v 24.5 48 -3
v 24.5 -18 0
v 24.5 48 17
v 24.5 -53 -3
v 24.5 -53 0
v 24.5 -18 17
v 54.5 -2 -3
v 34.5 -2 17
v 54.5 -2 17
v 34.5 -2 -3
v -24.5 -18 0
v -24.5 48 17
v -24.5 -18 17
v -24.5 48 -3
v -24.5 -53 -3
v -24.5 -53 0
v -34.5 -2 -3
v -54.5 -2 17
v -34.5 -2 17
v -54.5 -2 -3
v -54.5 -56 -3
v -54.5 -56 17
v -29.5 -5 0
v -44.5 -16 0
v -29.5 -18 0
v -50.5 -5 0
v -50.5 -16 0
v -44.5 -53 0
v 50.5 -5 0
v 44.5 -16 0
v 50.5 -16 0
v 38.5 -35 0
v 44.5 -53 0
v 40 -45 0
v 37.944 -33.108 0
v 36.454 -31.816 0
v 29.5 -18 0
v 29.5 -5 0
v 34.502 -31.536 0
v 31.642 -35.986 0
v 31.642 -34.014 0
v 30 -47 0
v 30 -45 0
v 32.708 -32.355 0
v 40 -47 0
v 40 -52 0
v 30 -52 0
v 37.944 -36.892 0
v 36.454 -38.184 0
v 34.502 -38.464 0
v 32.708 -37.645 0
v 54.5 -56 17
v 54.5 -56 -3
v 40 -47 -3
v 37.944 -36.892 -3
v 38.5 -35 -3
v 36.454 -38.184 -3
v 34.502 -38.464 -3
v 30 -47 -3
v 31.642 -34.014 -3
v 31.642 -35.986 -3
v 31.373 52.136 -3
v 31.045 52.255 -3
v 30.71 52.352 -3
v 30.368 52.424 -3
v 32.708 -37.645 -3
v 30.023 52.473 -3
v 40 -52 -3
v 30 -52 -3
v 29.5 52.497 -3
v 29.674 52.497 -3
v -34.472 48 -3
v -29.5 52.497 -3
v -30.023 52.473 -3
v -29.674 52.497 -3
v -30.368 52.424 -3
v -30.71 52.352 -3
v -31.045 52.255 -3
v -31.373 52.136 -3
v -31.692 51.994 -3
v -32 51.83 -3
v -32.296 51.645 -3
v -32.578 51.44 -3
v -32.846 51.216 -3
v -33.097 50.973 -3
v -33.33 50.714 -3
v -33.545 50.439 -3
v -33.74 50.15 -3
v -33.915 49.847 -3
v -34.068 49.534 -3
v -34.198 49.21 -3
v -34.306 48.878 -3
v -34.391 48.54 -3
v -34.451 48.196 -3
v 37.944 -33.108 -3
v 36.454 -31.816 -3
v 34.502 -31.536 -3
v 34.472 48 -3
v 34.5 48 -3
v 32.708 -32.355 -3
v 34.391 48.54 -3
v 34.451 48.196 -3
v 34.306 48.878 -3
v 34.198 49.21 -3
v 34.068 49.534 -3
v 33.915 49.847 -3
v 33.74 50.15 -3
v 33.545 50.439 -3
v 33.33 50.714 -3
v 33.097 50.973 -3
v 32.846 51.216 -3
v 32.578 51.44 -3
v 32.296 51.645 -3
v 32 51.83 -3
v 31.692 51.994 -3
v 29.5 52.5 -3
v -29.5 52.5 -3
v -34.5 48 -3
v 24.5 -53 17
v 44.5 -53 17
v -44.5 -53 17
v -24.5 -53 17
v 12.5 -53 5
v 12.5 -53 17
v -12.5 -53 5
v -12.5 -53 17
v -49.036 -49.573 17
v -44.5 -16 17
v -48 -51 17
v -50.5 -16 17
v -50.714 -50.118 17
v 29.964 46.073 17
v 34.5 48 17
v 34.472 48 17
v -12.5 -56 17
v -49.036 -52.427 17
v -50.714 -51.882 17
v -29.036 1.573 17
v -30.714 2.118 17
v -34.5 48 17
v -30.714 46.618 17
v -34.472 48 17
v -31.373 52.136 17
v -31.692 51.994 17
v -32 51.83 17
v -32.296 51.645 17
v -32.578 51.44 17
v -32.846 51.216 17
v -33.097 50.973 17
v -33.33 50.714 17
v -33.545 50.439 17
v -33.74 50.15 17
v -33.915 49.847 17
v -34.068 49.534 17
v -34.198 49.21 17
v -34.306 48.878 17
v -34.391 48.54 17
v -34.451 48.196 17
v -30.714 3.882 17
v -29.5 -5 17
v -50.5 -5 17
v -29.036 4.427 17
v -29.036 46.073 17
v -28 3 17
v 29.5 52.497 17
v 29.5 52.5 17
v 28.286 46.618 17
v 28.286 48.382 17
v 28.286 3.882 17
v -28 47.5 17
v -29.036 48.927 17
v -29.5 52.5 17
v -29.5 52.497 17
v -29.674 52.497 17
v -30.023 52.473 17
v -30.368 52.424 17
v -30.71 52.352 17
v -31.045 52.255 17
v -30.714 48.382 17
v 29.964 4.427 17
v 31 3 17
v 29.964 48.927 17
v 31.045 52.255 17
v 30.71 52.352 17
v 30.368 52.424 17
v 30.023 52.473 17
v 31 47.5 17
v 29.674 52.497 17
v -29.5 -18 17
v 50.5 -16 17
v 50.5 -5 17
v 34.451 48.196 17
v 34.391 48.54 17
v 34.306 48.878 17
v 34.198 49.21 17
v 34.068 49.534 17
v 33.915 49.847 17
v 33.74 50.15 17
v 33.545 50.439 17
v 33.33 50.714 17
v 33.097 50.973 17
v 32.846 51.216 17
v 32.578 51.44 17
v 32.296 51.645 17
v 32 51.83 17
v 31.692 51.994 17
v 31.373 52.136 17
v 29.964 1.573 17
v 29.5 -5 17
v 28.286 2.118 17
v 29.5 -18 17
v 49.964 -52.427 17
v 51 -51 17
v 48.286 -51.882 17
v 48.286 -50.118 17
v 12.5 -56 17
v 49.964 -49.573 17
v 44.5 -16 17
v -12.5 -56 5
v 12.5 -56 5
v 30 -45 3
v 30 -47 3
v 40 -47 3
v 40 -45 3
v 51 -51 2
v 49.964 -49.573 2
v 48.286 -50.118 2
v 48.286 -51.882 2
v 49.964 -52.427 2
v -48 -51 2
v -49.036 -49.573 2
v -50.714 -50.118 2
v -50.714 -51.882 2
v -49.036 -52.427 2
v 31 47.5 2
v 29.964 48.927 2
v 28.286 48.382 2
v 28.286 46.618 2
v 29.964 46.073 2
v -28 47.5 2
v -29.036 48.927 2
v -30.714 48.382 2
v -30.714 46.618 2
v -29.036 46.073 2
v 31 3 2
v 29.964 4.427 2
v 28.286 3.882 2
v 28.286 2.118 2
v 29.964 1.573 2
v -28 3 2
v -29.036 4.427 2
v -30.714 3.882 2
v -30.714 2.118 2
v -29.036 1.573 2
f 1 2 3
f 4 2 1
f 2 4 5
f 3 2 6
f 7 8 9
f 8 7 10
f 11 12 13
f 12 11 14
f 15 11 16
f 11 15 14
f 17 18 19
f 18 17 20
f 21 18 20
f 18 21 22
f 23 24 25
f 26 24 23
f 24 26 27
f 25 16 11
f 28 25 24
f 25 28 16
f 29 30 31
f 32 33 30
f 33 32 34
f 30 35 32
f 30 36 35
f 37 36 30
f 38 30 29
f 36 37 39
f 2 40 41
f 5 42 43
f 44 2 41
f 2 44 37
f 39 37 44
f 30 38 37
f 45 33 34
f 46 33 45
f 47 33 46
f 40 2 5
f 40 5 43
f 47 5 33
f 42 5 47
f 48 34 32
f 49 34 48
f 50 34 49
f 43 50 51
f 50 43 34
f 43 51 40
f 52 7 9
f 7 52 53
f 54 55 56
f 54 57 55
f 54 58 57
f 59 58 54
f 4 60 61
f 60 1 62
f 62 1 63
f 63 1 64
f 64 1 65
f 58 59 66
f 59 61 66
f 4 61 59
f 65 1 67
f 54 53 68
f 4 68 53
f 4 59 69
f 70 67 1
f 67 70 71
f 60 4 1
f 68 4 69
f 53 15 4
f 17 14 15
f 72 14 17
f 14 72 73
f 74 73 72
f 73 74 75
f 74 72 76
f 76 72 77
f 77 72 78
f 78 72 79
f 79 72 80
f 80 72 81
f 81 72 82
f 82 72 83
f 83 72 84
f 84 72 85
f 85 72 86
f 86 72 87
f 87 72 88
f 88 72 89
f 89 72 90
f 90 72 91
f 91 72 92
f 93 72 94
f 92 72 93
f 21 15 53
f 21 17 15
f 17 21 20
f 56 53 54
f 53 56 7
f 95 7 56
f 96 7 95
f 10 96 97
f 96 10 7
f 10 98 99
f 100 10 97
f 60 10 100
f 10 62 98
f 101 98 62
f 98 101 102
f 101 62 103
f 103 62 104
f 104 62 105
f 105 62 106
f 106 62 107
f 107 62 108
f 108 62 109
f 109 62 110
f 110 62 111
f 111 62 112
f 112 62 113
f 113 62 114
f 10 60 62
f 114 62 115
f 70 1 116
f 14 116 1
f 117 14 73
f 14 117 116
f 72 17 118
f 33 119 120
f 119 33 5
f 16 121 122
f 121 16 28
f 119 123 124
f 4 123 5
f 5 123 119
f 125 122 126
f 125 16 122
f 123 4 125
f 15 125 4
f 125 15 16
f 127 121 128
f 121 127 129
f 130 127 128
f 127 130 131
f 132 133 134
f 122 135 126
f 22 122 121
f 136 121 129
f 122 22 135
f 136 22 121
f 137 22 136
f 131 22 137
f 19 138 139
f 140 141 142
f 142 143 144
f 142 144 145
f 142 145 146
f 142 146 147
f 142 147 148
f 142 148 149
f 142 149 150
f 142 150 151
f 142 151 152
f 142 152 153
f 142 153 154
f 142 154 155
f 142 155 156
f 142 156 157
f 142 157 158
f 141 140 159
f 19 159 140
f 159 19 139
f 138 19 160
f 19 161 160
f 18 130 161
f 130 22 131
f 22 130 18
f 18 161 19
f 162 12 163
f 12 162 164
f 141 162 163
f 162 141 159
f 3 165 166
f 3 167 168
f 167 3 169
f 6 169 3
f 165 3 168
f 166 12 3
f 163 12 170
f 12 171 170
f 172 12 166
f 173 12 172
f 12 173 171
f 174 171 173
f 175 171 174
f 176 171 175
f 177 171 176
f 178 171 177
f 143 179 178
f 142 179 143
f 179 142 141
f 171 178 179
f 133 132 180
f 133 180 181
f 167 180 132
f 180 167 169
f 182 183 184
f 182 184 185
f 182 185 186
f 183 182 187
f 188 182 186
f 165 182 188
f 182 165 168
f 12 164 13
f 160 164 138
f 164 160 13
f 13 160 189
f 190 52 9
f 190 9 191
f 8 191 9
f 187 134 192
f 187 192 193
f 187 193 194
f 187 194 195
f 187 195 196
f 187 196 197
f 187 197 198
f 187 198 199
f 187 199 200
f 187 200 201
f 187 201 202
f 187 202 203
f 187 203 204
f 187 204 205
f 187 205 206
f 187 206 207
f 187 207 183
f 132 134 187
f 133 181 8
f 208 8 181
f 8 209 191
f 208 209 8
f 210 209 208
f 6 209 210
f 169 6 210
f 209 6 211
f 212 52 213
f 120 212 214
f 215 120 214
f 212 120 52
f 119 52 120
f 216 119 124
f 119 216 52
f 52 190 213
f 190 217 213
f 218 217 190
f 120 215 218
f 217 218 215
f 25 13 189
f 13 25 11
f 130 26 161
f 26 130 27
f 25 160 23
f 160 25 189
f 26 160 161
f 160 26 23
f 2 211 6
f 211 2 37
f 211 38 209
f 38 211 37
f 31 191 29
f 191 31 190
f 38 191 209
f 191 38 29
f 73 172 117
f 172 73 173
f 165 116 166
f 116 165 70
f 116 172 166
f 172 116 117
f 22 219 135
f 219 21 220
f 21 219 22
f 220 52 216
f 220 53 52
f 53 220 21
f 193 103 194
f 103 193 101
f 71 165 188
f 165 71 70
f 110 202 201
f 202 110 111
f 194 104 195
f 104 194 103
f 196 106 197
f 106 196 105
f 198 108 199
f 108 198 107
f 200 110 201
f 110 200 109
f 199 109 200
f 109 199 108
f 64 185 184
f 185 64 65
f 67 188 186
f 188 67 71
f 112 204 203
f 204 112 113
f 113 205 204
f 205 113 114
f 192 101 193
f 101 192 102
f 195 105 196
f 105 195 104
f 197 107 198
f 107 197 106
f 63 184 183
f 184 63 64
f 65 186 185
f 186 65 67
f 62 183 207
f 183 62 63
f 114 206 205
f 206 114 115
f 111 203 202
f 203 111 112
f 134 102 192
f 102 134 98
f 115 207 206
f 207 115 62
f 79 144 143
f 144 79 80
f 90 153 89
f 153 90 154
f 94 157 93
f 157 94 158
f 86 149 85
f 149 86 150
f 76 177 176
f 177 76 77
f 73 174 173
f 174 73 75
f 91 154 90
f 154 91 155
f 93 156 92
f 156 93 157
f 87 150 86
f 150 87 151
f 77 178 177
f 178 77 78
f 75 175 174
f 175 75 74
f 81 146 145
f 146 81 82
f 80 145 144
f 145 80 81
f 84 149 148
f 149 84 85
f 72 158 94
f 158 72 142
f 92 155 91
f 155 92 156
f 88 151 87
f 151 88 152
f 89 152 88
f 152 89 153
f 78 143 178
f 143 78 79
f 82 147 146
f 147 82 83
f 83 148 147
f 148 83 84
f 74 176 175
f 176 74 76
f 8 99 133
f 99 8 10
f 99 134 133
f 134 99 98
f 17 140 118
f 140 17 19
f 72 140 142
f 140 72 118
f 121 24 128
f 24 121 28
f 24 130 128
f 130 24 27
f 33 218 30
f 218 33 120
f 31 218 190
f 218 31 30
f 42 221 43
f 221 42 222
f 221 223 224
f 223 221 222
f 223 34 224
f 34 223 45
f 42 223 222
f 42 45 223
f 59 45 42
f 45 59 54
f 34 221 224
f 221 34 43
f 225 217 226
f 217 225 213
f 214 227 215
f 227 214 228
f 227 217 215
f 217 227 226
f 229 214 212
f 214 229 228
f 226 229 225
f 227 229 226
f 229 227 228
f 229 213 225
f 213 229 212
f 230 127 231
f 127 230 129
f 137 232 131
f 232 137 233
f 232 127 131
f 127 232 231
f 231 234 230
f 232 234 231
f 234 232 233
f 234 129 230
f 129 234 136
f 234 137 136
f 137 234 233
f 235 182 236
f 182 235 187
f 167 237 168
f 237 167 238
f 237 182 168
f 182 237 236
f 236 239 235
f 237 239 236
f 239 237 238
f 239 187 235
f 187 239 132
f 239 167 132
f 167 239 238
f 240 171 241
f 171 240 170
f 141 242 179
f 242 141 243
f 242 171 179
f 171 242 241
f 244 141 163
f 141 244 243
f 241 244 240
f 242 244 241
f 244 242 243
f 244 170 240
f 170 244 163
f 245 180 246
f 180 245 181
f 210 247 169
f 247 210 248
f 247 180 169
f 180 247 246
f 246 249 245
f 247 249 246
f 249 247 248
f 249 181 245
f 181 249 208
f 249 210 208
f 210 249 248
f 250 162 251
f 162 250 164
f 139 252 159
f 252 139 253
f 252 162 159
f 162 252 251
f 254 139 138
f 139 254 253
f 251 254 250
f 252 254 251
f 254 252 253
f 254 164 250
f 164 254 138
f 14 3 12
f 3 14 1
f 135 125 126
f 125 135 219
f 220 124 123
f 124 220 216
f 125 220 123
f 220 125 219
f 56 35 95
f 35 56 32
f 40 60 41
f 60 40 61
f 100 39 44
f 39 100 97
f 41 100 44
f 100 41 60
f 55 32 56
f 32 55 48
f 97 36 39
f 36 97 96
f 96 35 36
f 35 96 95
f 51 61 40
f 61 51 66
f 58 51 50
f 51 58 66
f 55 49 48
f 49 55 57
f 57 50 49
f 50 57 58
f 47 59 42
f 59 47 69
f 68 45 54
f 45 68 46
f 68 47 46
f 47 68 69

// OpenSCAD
/* 
 * Telebot 1.1
 * Copyright (c) 2015-2016 by Paul-Louis Ageneau
 *
 * This program is free software: you can redistribute it and/or modify
 * it under the terms of the GNU General Public License as published by
 * the Free Software Foundation, either version 3 of the License, or
 * (at your option) any later version.
 *
 * This program is distributed in the hope that it will be useful,
 * but WITHOUT ANY WARRANTY; without even the implied warranty of
 * MERCHANTABILITY or FITNESS FOR A PARTICULAR PURPOSE.  See the
 * GNU General Public License for more details.
 *
 * You should have received a copy of the GNU General Public License
 * along with this program.  If not, see <http://www.gnu.org/licenses/>.
 */

// Front frame

card_width = 43;
card_height = 48;
card_space = 7;

motor_width = 12;
motor_height = 10;
motor_depth = 25;

wheel_radius = 55;
gear_radius = 5;
axis_offset = -42;
axis_radius = 5;
motor_offset = axis_offset + 55-(20+3);

width = (motor_depth+ 3 + 2 )*2 + card_width + 3*2;
depth = card_height + card_space + card_width + 3*2;
height = 15 + 3 + 2;
side_thickness = 10;

difference() {
    union() {
        
        difference() {
            translate([0, card_height - depth/2 + 3, -1.5]) cube([width, depth, 3], center = true);	
            union() {
                translate([width/2, card_height+3, 0]) cube([width-card_width-3*2, (card_height - motor_offset - motor_width/2 + 3 - 2)*2, height*2], center = true);
                translate([-width/2, card_height+3, 0]) cube([width-card_width-3*2, (card_height - motor_offset - motor_width/2 + 3 - 2)*2, height*2], center = true);
            }
        }
        
        translate([-width/2 + motor_depth/2 + 5, motor_offset, height/2-4]) difference() {
            translate([-2.5, 0, 1]) cube([motor_depth+2+3, motor_width+4, height], center = true);
            translate([-3, -2, 1+2]) cube([motor_depth-4, motor_width+2, height], center = true);
        }
        
        translate([width/2 - motor_depth/2 - 5, motor_offset, height/2-4]) difference() {
            translate([2.5, 0, 1]) cube([motor_depth+2+3, motor_width+4, height], center = true);
            translate([3, -2, 1+2]) cube([motor_depth-4, motor_width+2, height], center = true);
        }
        
        translate([0, card_height + side_thickness/2-3, height/2 - 3]) cube([card_width+3*2+side_thickness, side_thickness/2, height], center = true);
        translate([0, -depth+card_height+3/2, height/2 - 3]) cube([width, 3, height], center = true);

        translate([(width-card_width-side_thickness + 3)/2, card_height - side_thickness/2 + 3/2 + 3, height/2 - 3]) cylinder(h=height, r=side_thickness/2, center = true, $fn=90);
        translate([-(width-card_width-side_thickness + 3)/2, card_height - side_thickness/2 + 3/2 + 3, height/2 - 3]) cylinder(h=height, r=side_thickness/2, center = true, $fn=90);

        translate([(width-card_width-side_thickness + 3)/2, card_height - (card_height - motor_offset - motor_width/2)/2, height/2 - 3]) cube([side_thickness, card_height - motor_offset - motor_width/2, height], center = true);
        translate([-(width-card_width-side_thickness + 3)/2, card_height - (card_height - motor_offset - motor_width/2)/2, height/2 - 3]) cube([side_thickness, card_height - motor_offset - motor_width/2, height], center = true);

        translate([-width/2+side_thickness/2, (motor_offset - motor_width/2 -depth+card_height+3)/2, height/2 - 3]) cube([side_thickness, motor_offset - motor_width/2 + depth-card_height - 3, height], center = true);
        translate([width/2-side_thickness/2, (motor_offset - motor_width/2 -depth+card_height+3)/2, height/2 - 3]) cube([side_thickness, motor_offset - motor_width/2 + depth-card_height - 3, height], center = true);
        
         // Charger
    translate([card_width/2+13.5, -card_space-card_height+5.5+3.5, 1.5]) cube([10, 2, 3], center= true);
    
    }
    
    union() {
        translate([width/2-side_thickness/2, -card_height-card_space+side_thickness/2-1, 0]) 
            screw_hole(15);
        translate([-width/2+side_thickness/2, -card_height-card_space+side_thickness/2-1, 0]) 
            screw_hole(15);
        translate([(width-card_width-side_thickness + 3)/2, card_height-0.5, 0]) 
            screw_hole(15);
        translate([-(width-card_width-side_thickness + 3)/2, card_height-0.5, 0]) 
            screw_hole(15);
        translate([(width-card_width-side_thickness + 3)/2, 3, 0]) 
            screw_hole(15);
        translate([-(width-card_width-side_thickness + 3)/2, 3, 0]) 
            screw_hole(15);
        
        translate([0,card_height-depth/2+1.5,0]) cube([card_width+6, depth-3, height*4], center= true);
        translate([0,-card_height-card_space,height]) cube([25, depth, height*3/2], center= true);
        
        // Switch
        translate([+card_width/2+13.5, -35, 0]) cylinder(h = 100, r = 7/2, center=true);
        
        // Charger
        translate([card_width/2+13.5, -card_space-card_height+5.5, 0]) cube([10, 5, height*4], center= true);
    }
}

module screw_hole(depth = 15)
{
    translate([0, 0, height-3]) cylinder(h = depth*2, r = 1.5, center=true);
}
